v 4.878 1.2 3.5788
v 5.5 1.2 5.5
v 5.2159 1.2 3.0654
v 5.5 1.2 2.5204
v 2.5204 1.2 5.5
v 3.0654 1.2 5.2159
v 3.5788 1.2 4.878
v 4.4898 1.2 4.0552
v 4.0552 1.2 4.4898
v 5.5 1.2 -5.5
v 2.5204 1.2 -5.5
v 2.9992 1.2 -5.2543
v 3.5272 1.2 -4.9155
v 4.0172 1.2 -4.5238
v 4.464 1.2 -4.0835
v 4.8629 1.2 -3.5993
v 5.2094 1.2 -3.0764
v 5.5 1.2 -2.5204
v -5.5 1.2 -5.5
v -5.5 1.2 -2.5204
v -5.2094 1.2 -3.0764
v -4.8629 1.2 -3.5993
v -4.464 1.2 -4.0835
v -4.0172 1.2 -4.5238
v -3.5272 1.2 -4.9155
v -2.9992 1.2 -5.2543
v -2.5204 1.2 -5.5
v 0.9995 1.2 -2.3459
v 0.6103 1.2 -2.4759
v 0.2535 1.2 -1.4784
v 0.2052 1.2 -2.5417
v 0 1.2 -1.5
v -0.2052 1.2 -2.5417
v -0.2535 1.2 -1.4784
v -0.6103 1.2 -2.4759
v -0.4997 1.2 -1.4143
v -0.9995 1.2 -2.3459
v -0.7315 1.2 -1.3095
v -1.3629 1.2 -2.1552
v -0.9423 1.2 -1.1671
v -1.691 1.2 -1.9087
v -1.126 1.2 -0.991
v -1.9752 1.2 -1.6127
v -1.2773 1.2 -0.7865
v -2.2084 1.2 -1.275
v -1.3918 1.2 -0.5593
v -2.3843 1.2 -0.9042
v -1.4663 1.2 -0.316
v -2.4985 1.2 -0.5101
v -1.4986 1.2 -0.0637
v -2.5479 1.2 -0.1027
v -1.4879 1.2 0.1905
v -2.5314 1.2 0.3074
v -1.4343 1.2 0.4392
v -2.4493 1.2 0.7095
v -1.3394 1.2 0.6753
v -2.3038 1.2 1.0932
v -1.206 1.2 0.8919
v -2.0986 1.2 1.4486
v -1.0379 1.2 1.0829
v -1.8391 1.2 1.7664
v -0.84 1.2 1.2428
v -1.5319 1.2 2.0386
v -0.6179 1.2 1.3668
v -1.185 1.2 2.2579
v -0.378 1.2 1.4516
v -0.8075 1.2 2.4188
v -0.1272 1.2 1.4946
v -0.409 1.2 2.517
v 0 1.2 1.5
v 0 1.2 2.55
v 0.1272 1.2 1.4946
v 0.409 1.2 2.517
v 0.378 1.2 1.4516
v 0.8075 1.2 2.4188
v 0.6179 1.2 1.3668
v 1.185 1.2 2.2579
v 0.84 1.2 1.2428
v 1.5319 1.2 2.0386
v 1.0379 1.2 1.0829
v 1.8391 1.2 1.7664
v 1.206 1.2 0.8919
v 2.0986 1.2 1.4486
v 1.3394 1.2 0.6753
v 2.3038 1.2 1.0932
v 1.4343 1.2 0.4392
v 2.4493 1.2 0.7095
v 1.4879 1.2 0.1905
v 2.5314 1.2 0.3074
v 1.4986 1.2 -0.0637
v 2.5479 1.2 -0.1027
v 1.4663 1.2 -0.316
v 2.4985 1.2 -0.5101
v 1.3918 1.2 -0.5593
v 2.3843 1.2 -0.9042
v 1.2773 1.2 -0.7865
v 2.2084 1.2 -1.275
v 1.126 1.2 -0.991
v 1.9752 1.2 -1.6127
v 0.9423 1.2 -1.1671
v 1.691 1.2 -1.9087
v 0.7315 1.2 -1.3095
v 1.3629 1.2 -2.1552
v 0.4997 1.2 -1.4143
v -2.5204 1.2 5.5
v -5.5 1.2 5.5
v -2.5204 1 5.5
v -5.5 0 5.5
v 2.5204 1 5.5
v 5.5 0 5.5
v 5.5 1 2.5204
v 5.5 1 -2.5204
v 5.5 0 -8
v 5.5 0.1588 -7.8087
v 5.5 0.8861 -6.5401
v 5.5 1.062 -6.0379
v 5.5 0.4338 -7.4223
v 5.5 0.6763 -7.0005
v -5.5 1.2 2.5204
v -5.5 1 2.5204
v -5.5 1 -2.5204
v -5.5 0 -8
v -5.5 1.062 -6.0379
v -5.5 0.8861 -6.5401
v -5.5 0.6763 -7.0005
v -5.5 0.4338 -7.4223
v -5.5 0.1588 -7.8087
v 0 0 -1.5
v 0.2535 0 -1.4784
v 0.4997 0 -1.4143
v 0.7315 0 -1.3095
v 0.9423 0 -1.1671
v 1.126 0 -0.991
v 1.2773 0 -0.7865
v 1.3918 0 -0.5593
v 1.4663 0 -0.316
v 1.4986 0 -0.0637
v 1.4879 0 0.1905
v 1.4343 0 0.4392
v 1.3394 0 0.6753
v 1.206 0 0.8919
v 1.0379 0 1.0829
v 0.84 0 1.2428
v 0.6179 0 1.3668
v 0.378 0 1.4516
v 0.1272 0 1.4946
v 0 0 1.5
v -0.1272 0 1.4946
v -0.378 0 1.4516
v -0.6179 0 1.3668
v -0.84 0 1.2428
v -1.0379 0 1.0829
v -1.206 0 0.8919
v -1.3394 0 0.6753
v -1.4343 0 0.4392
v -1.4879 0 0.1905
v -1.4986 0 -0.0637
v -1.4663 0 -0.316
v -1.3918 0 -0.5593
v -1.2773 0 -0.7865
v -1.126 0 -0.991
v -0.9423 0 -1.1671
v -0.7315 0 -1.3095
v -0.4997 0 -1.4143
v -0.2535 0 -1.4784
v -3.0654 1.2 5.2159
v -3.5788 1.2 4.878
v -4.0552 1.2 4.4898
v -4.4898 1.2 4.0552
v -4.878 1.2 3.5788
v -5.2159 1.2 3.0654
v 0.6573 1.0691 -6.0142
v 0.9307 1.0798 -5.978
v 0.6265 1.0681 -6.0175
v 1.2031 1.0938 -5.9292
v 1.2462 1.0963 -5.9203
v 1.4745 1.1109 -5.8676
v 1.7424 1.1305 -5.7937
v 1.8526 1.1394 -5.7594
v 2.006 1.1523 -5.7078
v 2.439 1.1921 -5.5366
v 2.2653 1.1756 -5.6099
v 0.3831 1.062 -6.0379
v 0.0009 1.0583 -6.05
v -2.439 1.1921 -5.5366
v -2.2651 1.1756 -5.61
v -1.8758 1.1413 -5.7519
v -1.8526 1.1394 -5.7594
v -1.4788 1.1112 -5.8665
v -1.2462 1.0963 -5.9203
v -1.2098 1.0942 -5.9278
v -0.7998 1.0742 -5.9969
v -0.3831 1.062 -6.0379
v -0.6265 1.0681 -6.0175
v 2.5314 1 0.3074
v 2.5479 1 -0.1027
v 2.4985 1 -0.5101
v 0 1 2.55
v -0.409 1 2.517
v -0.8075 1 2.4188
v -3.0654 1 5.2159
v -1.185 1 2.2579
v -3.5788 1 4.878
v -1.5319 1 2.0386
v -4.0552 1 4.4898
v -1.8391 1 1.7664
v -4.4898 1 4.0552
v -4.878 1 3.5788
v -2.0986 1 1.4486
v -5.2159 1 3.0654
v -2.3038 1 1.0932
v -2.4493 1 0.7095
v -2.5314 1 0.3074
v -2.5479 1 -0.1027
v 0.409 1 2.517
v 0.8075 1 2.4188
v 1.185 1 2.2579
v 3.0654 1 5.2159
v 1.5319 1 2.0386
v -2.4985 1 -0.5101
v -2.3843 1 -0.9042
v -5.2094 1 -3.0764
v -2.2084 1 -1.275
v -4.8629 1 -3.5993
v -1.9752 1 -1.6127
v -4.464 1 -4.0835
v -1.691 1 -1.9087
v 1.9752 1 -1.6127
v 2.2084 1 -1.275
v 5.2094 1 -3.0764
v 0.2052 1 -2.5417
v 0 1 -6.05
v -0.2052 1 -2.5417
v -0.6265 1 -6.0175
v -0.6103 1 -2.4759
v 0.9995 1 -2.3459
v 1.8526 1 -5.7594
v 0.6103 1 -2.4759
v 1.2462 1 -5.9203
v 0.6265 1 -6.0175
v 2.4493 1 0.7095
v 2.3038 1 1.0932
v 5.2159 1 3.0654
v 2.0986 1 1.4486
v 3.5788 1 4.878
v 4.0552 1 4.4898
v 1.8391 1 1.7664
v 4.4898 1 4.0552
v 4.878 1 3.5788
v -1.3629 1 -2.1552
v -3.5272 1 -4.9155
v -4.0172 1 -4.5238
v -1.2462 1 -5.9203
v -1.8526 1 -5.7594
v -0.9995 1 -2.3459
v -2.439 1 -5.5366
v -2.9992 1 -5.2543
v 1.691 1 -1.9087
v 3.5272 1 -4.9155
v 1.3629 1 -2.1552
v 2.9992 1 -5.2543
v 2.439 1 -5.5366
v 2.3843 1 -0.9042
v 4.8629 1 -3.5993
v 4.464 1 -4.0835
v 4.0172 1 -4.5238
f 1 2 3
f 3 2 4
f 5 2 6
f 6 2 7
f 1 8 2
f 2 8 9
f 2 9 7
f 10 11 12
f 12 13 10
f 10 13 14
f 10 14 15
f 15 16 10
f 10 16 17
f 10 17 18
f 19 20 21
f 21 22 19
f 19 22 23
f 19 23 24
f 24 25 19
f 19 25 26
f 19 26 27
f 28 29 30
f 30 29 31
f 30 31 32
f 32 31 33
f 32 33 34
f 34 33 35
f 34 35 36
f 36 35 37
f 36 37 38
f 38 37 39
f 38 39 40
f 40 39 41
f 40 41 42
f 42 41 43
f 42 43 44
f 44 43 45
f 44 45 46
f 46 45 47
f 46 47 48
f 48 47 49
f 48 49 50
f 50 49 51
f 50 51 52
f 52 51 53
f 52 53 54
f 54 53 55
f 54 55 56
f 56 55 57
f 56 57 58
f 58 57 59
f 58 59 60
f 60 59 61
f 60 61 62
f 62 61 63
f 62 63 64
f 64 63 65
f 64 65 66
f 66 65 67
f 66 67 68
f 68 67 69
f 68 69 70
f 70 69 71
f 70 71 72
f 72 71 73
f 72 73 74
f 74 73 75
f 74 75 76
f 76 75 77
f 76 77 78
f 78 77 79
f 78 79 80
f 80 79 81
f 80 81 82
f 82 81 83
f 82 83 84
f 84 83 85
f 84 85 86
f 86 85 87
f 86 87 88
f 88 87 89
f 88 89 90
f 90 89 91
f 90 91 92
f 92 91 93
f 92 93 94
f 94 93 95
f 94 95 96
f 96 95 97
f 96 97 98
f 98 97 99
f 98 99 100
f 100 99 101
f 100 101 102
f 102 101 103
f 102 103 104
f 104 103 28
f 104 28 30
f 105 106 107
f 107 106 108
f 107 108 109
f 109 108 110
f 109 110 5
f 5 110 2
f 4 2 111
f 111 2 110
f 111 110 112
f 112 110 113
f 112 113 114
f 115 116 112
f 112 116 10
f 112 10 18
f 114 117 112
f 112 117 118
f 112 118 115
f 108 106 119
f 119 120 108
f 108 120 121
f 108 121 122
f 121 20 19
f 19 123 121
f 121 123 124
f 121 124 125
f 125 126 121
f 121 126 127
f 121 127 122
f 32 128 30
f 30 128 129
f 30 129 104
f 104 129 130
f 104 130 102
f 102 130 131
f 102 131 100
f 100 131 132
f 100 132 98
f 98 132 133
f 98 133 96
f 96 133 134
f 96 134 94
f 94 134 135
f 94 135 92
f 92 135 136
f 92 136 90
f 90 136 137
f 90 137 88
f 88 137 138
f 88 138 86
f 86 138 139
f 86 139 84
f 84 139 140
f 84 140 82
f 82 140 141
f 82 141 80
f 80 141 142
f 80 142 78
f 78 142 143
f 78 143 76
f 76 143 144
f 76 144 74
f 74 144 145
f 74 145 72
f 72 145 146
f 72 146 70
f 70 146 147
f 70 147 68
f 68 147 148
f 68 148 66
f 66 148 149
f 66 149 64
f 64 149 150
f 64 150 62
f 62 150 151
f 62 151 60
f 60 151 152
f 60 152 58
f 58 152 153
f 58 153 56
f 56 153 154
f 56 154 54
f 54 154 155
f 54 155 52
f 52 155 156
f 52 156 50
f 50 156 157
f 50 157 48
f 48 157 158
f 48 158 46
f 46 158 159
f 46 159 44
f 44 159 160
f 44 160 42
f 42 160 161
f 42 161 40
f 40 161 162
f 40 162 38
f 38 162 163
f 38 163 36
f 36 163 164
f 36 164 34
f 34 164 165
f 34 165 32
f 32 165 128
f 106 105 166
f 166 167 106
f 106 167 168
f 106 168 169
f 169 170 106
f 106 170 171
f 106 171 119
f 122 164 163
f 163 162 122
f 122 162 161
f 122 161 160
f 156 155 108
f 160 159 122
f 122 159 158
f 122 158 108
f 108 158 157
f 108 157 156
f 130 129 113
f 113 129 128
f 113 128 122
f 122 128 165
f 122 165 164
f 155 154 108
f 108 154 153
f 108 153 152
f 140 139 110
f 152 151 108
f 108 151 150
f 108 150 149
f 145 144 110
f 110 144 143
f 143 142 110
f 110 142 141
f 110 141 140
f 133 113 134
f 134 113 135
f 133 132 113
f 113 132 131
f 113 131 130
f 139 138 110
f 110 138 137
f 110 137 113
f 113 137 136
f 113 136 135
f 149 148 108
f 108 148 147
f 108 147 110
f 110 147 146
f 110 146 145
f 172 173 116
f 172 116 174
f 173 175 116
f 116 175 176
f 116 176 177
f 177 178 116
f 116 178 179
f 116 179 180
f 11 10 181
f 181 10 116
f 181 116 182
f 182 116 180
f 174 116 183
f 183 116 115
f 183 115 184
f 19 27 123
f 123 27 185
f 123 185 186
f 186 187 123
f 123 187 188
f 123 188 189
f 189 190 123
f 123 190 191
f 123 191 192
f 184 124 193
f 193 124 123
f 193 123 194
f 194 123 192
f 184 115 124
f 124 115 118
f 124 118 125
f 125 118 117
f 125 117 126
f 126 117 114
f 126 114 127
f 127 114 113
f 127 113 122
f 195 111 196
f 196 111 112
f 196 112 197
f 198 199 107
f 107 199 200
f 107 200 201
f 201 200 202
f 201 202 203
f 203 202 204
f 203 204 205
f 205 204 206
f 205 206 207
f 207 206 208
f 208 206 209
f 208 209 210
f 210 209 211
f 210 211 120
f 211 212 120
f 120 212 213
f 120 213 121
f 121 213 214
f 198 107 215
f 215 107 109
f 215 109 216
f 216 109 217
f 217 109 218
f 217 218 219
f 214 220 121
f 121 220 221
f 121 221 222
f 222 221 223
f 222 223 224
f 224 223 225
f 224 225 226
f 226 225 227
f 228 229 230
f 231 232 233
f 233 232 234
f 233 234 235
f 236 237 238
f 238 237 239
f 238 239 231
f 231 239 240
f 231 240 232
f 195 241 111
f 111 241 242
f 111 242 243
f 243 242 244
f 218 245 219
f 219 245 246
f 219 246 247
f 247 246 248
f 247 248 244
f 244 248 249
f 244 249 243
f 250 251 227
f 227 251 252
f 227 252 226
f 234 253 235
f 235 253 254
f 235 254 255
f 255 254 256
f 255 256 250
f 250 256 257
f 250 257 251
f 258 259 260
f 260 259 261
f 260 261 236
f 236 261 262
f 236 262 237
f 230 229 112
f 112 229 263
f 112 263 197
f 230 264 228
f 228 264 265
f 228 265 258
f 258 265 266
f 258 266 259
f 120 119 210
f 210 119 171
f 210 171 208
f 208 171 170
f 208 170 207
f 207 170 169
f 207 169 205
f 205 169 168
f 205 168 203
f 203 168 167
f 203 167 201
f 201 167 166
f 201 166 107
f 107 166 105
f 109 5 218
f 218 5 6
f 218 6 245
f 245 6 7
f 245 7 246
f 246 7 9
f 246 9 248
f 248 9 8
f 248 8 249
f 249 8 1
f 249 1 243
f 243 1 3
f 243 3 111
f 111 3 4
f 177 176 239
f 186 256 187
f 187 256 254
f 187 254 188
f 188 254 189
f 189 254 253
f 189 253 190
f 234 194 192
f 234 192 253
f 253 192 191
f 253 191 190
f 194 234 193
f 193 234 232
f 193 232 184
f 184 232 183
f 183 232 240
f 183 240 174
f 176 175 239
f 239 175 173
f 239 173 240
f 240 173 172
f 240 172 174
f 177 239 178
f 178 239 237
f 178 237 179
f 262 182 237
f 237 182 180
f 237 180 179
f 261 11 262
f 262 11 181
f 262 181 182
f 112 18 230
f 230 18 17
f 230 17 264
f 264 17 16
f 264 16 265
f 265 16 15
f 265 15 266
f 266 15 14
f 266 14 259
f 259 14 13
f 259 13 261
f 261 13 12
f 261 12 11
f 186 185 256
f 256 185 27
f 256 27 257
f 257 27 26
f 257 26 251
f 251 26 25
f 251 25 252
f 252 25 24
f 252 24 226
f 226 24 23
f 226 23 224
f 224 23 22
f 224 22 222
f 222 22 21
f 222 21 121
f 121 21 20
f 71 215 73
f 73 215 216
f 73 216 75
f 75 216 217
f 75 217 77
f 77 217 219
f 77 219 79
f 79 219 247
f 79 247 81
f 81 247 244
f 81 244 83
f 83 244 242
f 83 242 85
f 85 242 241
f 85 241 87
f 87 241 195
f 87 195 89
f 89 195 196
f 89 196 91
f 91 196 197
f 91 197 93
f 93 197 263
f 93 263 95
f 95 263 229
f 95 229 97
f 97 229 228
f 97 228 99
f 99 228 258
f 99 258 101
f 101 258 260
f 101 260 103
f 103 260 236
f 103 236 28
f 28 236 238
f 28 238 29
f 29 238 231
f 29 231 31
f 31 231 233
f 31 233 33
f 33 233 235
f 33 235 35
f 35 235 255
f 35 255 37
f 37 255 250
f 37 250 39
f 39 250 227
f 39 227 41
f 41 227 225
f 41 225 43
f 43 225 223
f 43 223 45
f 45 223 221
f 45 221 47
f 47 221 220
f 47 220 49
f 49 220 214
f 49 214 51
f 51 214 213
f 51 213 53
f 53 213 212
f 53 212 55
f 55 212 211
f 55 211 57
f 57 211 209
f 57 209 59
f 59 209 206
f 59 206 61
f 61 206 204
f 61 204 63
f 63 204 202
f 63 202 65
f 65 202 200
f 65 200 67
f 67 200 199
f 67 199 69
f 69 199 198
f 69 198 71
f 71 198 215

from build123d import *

# Parameters (mm, degrees)
SKETCH1_W           = 11
SKETCH1_H           = 11
SKETCH1_R           = 1.5
BOSS_EXTRUDE1_DEPTH = 1.2
SKETCH1_4_W         = 11
SKETCH1_4_H         = 2.5
BOSS_EXTRUDE2_DEPTH = 1.2
CUT_EXTRUDE1_DEPTH  = 14.654303351
SKETCH4_R           = 6.05
SKETCH4_R_2         = 2.55
CUT_EXTRUDE3_DEPTH  = 0.2


with BuildPart() as part:
    # Sketch1 → Boss-Extrude1 (new body)
    with BuildSketch(Plane(origin=(0, 0, 0), x_dir=(1, 0, 0), z_dir=(0, 1, 0))):
        Rectangle(SKETCH1_W, SKETCH1_H)
        Circle(SKETCH1_R, mode=Mode.SUBTRACT)
    extrude(amount=BOSS_EXTRUDE1_DEPTH)

    # Sketch1<4> → Boss-Extrude2 (add)
    with BuildSketch(Plane(origin=(0, 0, 0), x_dir=(1, 0, 0), z_dir=(0, 1, 0))):
        with Locations((0, 6.75)):
            Rectangle(SKETCH1_4_W, SKETCH1_4_H)
    extrude(amount=BOSS_EXTRUDE2_DEPTH)

    # Sketch3 → Cut-Extrude1 (cut, through all)
    with BuildSketch(Plane(origin=(5.5, 0, 0), x_dir=(0, 0, -1), z_dir=(1, 0, 0))):
        with BuildLine():
            Line((8, 1.2), (5.5, 1.2))
            add(Edge.make_bspline(
                [(5.5, 1.2), (6.993685342, 0.880481124), (8, 0)],
                knots=[0, 0, 0, 0.506360877, 0.506360877, 0.506360877], degree=2))
            Line((8, 0), (8, 1.2))
        make_face()
    extrude(amount=-CUT_EXTRUDE1_DEPTH, mode=Mode.SUBTRACT)

    # Sketch4 → Cut-Extrude3 (cut)
    with BuildSketch(Plane(origin=(0, 1.2, 0), x_dir=(1, 0, 0), z_dir=(0, 1, 0))):
        Circle(SKETCH4_R)
        Circle(SKETCH4_R_2, mode=Mode.SUBTRACT)
    extrude(amount=-CUT_EXTRUDE3_DEPTH, mode=Mode.SUBTRACT)


solid = part.part
